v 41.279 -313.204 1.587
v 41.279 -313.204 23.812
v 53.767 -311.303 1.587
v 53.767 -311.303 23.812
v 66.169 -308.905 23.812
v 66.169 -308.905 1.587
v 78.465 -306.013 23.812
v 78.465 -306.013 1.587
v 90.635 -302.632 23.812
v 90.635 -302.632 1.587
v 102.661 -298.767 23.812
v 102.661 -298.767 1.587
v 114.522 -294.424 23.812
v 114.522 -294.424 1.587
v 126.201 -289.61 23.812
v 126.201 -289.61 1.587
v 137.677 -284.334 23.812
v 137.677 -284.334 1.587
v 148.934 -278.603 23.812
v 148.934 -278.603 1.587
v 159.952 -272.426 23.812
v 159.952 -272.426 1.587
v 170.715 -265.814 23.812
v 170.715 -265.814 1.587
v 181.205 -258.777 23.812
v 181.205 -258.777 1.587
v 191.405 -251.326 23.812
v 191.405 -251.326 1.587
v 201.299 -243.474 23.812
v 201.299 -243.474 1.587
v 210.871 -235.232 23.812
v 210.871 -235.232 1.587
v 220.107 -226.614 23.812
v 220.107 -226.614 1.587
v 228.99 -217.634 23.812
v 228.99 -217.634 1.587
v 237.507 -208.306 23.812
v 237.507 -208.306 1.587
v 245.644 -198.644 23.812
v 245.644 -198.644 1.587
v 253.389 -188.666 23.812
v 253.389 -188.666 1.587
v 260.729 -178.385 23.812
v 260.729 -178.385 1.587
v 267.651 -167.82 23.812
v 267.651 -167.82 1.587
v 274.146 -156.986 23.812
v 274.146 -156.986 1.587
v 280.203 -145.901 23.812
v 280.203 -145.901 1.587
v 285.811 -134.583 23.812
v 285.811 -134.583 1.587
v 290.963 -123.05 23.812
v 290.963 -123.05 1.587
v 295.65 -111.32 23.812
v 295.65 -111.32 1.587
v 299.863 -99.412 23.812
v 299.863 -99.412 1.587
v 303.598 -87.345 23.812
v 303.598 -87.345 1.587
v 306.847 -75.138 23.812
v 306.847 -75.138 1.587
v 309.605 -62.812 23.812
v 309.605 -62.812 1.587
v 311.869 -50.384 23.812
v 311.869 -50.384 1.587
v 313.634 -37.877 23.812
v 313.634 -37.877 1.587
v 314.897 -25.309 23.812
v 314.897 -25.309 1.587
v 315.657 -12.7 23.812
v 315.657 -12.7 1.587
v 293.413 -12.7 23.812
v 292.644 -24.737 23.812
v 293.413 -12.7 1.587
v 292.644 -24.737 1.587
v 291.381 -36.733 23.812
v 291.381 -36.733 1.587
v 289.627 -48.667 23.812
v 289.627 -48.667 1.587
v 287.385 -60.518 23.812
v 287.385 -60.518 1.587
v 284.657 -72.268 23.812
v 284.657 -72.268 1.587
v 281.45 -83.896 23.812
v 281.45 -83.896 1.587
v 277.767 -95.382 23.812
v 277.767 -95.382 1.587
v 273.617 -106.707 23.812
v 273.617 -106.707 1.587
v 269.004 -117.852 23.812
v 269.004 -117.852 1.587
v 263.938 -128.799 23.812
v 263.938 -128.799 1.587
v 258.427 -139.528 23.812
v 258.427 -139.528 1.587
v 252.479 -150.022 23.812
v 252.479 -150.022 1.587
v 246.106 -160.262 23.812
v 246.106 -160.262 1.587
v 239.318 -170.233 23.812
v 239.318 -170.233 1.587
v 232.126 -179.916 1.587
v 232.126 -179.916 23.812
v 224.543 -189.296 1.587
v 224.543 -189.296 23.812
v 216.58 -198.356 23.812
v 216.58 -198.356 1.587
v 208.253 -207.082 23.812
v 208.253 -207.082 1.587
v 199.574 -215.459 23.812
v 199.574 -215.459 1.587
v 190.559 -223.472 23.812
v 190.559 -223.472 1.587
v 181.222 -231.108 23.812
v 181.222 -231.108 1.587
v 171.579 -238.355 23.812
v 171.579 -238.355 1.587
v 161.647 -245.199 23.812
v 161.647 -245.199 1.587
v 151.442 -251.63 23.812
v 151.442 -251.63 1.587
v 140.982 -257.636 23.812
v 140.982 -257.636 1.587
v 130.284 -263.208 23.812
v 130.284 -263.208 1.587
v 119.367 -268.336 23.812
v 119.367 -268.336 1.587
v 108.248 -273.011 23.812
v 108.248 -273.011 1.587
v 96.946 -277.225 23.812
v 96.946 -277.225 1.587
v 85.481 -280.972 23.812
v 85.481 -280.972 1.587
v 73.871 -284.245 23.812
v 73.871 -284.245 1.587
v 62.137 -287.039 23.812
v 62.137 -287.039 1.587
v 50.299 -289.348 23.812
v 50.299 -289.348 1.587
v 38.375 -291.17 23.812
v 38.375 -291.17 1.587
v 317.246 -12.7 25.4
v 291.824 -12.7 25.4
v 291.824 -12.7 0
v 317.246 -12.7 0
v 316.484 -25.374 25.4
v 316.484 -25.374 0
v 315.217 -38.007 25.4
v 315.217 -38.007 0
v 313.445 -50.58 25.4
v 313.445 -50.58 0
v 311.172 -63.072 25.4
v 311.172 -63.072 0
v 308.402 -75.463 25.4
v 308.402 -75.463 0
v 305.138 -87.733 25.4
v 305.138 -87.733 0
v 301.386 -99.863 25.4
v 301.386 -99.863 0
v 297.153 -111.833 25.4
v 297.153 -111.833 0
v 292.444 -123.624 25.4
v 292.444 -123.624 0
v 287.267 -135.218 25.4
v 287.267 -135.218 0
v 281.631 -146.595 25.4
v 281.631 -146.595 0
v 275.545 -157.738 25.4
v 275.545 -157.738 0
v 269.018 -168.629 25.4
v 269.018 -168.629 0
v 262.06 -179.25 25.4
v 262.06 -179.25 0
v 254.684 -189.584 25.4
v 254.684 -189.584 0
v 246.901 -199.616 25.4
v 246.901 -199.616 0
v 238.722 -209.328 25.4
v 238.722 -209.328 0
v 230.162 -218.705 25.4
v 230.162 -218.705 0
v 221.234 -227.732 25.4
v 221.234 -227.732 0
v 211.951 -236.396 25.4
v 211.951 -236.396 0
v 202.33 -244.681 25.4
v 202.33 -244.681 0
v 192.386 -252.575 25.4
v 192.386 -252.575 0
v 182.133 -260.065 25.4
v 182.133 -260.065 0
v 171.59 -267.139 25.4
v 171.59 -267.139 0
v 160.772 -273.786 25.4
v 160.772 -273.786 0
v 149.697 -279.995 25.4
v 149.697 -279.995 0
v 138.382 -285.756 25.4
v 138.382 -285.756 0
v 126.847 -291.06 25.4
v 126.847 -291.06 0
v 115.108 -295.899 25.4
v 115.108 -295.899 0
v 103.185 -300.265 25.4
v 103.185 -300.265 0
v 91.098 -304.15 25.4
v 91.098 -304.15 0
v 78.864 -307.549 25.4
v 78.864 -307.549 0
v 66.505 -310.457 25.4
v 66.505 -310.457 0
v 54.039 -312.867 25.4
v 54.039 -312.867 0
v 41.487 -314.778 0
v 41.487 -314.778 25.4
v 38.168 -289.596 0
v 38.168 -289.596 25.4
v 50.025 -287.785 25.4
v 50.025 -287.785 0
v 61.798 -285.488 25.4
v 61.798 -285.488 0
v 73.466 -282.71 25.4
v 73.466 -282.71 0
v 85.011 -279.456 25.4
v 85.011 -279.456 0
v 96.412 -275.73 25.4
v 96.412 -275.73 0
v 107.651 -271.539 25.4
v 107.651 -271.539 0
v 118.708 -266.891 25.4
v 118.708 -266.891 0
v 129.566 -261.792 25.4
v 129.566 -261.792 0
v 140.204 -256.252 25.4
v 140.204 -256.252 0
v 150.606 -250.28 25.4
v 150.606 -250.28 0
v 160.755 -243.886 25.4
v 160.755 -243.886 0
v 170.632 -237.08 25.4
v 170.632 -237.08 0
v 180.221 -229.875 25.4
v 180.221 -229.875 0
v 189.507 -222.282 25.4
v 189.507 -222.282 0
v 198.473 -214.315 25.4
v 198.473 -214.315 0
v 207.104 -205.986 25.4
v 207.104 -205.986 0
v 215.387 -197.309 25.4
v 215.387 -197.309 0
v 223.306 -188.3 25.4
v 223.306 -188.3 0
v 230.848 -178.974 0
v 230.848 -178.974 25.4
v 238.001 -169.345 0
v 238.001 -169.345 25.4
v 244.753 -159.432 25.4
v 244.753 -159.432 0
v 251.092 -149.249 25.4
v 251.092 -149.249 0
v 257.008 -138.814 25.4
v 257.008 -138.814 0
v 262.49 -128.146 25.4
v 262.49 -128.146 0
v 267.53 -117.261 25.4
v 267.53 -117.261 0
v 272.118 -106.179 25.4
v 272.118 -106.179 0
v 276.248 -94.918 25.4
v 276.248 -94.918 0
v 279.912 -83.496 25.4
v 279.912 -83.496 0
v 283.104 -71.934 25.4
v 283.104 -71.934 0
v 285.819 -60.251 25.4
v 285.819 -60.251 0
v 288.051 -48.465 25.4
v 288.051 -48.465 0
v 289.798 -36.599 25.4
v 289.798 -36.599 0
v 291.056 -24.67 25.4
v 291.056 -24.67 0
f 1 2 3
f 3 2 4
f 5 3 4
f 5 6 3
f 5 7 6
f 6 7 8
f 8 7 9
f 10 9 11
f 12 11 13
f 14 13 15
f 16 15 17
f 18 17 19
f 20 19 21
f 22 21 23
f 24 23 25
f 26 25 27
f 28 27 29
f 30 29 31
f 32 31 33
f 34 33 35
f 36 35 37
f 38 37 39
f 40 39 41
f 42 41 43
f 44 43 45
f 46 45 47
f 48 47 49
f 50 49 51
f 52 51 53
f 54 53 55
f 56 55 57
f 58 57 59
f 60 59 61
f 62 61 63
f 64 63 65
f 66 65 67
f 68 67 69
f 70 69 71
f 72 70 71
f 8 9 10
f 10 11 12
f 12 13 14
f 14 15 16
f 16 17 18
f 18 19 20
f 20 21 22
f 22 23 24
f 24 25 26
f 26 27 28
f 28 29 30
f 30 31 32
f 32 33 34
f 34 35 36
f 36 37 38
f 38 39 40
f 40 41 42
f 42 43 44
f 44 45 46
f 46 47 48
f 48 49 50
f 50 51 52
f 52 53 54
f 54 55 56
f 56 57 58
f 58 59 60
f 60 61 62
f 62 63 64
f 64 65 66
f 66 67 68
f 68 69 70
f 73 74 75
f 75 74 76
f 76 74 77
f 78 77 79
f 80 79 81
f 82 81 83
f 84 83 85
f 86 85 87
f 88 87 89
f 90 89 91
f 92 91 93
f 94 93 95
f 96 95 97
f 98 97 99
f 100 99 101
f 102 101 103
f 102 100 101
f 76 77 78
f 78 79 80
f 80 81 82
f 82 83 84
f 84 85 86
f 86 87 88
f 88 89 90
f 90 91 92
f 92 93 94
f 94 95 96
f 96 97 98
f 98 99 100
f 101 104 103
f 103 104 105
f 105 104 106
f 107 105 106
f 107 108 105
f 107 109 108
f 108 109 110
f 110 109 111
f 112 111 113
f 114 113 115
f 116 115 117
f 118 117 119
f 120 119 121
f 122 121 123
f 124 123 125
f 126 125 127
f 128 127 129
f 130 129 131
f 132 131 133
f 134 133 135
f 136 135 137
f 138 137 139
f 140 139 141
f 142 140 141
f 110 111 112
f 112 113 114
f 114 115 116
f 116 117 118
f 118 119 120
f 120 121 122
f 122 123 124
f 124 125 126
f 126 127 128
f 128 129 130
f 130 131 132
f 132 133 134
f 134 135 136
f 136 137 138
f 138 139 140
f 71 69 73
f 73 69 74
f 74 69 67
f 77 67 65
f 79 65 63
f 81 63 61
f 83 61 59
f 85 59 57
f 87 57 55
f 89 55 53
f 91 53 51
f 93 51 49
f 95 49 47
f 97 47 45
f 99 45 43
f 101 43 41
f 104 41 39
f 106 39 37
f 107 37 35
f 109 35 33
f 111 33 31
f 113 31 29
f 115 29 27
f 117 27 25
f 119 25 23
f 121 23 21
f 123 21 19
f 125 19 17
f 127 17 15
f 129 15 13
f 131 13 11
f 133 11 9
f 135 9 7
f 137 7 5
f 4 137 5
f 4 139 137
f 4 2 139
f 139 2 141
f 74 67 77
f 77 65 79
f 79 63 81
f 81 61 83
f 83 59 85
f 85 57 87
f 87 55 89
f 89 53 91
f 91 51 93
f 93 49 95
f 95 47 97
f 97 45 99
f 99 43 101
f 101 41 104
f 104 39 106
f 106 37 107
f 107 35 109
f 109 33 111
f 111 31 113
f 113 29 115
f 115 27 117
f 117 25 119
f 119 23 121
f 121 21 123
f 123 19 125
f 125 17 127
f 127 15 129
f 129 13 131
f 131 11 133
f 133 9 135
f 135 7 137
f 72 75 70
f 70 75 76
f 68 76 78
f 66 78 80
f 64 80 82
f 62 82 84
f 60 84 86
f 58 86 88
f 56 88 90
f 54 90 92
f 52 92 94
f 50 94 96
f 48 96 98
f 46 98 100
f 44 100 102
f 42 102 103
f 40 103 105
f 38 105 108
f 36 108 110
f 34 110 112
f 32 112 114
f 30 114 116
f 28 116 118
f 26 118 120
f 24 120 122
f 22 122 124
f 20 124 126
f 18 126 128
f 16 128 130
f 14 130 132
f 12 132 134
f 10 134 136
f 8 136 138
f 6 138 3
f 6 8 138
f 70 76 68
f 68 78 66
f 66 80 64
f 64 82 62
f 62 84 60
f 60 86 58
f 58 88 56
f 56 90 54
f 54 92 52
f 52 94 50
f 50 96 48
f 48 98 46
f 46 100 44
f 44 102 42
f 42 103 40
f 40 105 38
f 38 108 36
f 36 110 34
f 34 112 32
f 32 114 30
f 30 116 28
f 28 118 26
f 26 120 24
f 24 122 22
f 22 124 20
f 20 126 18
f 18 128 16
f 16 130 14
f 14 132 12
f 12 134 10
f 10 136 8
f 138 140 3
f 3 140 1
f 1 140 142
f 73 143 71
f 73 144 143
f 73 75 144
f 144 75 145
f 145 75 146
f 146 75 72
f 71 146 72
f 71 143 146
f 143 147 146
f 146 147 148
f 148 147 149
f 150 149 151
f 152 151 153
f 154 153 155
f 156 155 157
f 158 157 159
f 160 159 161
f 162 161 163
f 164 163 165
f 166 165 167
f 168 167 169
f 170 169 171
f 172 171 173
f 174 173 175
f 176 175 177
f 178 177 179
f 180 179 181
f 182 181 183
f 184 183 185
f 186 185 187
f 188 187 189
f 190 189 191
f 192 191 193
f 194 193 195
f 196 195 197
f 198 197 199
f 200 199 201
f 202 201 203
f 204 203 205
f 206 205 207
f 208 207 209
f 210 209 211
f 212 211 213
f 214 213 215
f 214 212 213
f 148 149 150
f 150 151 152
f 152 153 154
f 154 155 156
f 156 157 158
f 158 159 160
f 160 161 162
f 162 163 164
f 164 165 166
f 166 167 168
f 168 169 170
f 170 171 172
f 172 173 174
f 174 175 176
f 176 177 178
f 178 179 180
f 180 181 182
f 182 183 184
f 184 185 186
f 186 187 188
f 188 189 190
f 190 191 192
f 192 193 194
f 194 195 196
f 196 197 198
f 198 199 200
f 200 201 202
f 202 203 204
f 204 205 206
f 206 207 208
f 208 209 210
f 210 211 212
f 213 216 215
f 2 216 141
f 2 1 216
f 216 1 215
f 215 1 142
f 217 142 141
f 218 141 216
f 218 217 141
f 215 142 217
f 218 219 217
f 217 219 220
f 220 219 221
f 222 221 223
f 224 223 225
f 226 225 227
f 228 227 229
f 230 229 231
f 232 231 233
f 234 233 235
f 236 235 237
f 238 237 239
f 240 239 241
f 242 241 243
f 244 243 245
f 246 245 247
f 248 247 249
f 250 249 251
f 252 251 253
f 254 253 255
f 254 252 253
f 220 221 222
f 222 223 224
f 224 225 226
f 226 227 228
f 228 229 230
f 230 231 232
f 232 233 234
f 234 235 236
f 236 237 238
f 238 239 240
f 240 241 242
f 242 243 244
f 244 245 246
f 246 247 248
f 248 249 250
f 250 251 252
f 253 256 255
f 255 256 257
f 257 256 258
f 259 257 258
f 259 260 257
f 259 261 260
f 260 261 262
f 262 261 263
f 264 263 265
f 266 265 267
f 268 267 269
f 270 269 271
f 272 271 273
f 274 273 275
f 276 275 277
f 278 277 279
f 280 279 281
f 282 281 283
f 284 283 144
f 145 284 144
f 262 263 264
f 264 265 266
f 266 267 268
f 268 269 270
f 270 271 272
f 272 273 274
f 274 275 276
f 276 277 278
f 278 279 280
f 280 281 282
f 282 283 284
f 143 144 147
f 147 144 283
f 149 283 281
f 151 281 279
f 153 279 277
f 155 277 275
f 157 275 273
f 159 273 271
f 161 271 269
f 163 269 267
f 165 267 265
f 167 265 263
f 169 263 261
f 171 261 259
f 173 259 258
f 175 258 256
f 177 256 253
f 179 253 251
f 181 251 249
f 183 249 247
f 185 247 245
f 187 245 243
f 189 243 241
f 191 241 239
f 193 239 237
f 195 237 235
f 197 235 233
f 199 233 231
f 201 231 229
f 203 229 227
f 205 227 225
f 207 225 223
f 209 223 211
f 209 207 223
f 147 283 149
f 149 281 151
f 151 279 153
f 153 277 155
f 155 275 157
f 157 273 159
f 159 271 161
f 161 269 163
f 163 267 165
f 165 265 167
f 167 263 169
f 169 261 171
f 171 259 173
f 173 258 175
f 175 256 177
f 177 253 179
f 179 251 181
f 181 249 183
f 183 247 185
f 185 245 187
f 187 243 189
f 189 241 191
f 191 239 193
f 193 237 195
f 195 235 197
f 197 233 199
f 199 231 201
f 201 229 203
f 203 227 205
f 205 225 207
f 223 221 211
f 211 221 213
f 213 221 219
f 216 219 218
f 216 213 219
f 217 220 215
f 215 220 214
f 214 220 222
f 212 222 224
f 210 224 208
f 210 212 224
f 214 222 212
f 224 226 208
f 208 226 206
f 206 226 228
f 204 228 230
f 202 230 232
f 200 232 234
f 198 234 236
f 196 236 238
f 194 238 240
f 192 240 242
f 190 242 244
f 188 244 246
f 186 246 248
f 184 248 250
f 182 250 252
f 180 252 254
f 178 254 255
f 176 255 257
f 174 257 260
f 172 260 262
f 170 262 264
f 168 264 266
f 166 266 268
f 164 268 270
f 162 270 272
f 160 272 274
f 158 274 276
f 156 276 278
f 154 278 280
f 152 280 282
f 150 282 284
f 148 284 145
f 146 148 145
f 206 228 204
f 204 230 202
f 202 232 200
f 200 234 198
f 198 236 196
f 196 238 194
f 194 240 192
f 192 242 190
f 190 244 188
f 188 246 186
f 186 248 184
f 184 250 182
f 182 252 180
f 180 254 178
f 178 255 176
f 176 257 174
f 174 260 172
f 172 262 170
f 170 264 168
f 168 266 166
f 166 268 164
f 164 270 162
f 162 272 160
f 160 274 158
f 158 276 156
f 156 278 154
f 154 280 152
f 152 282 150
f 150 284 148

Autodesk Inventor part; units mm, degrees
ref_plane "YZ Plane" through (0, 0, 0) normal (1, 0, 0) x (0, 1, 0)
ref_plane "XZ Plane" through (0, 0, 0) normal (0, 1, 0) x (-1, 0, 0)
ref_plane "XY Plane" through (0, 0, 0) normal (0, 0, 1) x (1, 0, 0)
sketch "Sketch1" plane through (0, 0, 0) normal (0, 0, 1) x (1, 0, 0)
  arc A0 (38.1676, -289.5957) -> (291.8238, -12.7) centre (0, 0) ccw
  arc A1 (41.4865, -314.7779) -> (317.2459, -12.7) centre (0, 0) ccw
  line L0 (38.1676, -289.5957) -> (41.4865, -314.7779)
  line L1 (291.8238, -12.7) -> (317.2459, -12.7)
  line L2 (0, 0) -> (38.1676, -289.5957) construction
  line L3 (0, -292.1) -> (0, 0) construction
  line L4 (291.8238, -12.7) -> (0, 0) construction
  line L5 (291.8238, 0) -> (317.2459, 0) construction
  line L6 (317.2459, 0) -> (317.2459, -12.7) construction
  line L7 (317.2459, -12.7) -> (291.8238, -12.7) construction
  line L8 (291.8238, -12.7) -> (291.8238, 0) construction
  line L9 (0, 0) -> (359.7285, 0) construction
  dimension "d0" = 292.1
  dimension "d1" = 25.4
  dimension "d9" = 12.7
  dimension "d10" = 80
extrude "Extrusion1" add sketch "Sketch1" along normal blind 25.4
shell "Shell1" thickness 1.5875 removed faces 2 at (300.2978, -12.7, 8.4667) at (40.3802, -306.3838, 8.4667)
properties part number "Shooter_Frame_RearGuide" material "Aluminum-6061"
